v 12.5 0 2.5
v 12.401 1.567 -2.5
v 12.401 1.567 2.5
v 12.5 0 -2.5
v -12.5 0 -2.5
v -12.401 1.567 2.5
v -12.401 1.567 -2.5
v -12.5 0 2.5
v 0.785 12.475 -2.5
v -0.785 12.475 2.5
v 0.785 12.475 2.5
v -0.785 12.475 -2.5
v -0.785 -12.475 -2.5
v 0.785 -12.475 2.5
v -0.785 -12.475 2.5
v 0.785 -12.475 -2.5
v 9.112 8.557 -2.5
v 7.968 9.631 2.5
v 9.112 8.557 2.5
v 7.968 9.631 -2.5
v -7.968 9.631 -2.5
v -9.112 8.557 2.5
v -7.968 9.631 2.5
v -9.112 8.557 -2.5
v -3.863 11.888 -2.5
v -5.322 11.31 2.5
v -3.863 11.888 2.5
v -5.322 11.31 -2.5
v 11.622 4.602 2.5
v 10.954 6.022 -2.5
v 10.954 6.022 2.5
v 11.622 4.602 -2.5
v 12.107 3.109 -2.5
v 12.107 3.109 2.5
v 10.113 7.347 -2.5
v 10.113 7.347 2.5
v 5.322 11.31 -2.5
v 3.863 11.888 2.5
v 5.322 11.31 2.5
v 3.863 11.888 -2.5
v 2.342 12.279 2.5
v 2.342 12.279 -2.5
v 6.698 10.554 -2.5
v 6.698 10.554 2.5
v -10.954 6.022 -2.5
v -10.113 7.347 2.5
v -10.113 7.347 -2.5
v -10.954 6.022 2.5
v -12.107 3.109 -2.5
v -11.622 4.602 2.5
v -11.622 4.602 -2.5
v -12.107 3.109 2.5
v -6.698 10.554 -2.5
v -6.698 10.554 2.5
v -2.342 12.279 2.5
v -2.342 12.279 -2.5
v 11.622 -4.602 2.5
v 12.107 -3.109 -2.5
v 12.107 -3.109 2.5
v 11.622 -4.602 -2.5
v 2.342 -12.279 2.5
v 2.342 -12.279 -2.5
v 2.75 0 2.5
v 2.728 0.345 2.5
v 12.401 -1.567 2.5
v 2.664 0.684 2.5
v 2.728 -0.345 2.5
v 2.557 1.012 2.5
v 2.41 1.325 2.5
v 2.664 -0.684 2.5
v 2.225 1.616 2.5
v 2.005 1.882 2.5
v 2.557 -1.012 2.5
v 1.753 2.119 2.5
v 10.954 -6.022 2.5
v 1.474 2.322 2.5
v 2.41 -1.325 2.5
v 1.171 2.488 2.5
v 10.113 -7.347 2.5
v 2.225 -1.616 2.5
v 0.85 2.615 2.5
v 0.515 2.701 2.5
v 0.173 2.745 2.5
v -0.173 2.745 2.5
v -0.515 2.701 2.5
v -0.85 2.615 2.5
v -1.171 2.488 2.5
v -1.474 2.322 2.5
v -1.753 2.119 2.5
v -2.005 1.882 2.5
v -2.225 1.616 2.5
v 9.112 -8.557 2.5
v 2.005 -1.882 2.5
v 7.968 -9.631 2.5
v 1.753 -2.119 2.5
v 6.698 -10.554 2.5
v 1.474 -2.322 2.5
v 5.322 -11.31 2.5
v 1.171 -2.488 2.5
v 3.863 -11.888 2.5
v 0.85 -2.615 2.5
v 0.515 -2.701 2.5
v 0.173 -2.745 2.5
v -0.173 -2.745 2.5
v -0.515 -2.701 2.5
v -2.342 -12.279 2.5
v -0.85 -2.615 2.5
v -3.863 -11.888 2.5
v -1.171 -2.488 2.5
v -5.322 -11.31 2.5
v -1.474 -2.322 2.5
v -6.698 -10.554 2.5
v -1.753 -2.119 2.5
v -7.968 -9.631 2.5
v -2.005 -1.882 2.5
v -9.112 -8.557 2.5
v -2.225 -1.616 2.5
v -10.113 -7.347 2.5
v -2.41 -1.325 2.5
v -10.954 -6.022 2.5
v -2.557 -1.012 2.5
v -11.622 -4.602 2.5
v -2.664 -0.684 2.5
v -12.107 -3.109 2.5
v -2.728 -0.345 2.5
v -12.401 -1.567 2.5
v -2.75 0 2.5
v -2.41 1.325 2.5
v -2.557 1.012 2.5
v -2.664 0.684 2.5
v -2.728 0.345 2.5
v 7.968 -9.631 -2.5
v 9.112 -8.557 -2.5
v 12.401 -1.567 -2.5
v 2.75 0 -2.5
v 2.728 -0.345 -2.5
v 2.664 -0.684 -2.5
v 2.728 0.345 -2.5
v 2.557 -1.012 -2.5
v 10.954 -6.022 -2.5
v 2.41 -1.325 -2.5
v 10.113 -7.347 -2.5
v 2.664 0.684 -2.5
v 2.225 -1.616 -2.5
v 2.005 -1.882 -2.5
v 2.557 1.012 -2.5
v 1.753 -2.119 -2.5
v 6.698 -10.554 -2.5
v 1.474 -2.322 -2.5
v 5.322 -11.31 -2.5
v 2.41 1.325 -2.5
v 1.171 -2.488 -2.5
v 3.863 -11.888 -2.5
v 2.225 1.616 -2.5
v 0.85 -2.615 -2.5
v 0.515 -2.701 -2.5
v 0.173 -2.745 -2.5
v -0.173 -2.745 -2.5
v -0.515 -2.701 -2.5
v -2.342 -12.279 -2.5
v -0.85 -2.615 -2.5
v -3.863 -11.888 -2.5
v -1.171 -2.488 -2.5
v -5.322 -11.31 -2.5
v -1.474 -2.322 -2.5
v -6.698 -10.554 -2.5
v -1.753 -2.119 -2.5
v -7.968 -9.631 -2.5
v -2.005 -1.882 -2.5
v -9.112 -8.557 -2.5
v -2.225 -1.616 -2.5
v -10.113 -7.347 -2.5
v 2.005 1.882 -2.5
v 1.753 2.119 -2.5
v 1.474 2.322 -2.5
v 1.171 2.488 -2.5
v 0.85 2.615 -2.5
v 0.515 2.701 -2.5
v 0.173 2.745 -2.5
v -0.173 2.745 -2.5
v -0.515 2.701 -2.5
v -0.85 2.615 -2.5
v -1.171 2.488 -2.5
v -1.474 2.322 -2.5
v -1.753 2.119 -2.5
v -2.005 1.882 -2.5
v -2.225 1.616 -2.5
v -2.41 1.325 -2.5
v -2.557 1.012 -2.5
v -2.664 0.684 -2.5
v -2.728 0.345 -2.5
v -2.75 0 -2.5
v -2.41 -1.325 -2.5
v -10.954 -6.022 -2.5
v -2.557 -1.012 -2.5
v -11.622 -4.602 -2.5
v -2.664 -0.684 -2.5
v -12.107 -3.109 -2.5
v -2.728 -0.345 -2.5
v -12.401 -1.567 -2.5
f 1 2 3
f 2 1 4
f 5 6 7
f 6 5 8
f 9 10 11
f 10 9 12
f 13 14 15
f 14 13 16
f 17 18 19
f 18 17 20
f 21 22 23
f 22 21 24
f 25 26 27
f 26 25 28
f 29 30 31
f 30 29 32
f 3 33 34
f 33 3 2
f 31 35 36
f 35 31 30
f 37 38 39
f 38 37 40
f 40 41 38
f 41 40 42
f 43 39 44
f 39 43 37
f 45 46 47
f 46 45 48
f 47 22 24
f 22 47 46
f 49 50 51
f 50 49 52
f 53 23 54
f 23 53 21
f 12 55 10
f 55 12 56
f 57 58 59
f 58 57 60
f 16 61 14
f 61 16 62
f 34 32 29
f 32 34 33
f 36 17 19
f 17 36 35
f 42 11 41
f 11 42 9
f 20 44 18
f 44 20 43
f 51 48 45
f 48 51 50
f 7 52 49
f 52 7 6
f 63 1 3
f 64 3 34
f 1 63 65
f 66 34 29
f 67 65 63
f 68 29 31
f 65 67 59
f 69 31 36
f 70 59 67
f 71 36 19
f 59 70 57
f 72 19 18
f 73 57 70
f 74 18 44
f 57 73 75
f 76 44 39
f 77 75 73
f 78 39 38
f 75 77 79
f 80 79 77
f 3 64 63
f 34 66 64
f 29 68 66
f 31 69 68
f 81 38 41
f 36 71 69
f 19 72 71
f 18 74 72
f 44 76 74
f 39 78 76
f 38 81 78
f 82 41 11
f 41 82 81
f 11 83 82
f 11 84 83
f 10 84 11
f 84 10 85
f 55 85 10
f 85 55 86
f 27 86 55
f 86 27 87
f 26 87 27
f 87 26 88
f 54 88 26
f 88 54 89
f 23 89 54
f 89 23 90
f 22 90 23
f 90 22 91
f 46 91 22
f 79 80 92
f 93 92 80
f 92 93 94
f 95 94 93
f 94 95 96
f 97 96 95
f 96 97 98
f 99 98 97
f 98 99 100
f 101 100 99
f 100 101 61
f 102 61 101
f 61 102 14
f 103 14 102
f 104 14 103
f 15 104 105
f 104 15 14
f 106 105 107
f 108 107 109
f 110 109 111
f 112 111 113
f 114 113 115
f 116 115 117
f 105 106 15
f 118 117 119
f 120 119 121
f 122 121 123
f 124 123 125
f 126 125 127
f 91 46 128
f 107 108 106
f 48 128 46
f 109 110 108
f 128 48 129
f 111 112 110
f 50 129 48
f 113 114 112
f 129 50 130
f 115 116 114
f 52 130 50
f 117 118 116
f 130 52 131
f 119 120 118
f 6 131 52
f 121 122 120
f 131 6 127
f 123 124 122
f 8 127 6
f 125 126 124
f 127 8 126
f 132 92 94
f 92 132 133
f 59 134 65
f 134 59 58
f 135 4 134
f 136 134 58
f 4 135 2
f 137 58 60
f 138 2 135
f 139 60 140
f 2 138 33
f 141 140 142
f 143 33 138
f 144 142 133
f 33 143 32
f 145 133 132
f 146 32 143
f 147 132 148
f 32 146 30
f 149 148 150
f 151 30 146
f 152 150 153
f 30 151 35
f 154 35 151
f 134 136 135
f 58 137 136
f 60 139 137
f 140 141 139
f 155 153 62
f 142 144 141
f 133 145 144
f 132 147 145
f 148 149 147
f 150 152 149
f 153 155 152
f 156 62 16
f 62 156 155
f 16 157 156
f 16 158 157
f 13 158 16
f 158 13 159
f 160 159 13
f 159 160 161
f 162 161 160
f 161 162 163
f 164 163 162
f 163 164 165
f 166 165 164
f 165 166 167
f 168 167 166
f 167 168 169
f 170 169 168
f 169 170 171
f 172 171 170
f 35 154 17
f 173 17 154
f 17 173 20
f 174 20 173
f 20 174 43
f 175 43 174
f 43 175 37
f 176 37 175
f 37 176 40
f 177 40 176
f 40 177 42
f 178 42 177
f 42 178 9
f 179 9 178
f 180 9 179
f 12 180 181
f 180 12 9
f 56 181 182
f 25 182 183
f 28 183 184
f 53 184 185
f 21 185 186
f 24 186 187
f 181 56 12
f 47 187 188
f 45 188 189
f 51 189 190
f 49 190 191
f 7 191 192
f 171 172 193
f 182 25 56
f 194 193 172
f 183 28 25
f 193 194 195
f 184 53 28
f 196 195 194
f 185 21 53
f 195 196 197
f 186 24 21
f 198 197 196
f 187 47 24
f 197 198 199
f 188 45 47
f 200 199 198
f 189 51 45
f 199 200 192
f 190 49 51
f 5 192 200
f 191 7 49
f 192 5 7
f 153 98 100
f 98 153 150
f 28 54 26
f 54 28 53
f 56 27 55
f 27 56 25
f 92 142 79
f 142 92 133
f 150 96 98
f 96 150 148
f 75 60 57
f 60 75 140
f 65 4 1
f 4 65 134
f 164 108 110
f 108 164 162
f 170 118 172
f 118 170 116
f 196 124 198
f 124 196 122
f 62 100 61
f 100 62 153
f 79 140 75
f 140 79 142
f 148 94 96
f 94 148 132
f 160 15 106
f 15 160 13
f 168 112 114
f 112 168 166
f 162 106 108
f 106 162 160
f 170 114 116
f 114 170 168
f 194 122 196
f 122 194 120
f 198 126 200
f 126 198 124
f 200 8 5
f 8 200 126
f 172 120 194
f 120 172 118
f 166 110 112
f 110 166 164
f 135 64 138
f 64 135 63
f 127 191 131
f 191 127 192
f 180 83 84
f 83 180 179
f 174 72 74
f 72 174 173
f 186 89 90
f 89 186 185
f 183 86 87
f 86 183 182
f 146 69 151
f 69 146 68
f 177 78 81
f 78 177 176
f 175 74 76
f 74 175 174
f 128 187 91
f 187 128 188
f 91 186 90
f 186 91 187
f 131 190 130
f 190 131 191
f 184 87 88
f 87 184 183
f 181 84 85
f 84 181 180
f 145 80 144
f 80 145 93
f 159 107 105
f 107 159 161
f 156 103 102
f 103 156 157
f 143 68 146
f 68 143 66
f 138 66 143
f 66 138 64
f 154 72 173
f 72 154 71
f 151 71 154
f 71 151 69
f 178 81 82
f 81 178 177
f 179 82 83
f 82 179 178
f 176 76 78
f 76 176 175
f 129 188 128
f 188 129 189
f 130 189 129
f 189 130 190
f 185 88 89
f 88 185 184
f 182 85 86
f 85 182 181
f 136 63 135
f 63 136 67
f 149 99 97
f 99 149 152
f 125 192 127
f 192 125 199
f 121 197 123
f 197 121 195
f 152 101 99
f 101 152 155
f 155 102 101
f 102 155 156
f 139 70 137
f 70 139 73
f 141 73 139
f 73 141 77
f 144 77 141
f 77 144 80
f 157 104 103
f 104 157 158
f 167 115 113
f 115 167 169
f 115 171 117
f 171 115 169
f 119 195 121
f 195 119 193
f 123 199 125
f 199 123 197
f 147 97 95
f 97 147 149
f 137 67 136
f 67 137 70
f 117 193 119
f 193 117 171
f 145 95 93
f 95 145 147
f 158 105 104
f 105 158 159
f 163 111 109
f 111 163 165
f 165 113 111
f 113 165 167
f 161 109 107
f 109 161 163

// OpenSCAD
$fn = 50;


difference() {
	union() {
		translate(v = [0, 0, -2.5000000000]) {
			cylinder(h = 5, r = 12.5000000000);
		}
	}
	union() {
		translate(v = [0, 0, -100.0000000000]) {
			cylinder(h = 200, r = 2.7500000000);
		}
	}
}
